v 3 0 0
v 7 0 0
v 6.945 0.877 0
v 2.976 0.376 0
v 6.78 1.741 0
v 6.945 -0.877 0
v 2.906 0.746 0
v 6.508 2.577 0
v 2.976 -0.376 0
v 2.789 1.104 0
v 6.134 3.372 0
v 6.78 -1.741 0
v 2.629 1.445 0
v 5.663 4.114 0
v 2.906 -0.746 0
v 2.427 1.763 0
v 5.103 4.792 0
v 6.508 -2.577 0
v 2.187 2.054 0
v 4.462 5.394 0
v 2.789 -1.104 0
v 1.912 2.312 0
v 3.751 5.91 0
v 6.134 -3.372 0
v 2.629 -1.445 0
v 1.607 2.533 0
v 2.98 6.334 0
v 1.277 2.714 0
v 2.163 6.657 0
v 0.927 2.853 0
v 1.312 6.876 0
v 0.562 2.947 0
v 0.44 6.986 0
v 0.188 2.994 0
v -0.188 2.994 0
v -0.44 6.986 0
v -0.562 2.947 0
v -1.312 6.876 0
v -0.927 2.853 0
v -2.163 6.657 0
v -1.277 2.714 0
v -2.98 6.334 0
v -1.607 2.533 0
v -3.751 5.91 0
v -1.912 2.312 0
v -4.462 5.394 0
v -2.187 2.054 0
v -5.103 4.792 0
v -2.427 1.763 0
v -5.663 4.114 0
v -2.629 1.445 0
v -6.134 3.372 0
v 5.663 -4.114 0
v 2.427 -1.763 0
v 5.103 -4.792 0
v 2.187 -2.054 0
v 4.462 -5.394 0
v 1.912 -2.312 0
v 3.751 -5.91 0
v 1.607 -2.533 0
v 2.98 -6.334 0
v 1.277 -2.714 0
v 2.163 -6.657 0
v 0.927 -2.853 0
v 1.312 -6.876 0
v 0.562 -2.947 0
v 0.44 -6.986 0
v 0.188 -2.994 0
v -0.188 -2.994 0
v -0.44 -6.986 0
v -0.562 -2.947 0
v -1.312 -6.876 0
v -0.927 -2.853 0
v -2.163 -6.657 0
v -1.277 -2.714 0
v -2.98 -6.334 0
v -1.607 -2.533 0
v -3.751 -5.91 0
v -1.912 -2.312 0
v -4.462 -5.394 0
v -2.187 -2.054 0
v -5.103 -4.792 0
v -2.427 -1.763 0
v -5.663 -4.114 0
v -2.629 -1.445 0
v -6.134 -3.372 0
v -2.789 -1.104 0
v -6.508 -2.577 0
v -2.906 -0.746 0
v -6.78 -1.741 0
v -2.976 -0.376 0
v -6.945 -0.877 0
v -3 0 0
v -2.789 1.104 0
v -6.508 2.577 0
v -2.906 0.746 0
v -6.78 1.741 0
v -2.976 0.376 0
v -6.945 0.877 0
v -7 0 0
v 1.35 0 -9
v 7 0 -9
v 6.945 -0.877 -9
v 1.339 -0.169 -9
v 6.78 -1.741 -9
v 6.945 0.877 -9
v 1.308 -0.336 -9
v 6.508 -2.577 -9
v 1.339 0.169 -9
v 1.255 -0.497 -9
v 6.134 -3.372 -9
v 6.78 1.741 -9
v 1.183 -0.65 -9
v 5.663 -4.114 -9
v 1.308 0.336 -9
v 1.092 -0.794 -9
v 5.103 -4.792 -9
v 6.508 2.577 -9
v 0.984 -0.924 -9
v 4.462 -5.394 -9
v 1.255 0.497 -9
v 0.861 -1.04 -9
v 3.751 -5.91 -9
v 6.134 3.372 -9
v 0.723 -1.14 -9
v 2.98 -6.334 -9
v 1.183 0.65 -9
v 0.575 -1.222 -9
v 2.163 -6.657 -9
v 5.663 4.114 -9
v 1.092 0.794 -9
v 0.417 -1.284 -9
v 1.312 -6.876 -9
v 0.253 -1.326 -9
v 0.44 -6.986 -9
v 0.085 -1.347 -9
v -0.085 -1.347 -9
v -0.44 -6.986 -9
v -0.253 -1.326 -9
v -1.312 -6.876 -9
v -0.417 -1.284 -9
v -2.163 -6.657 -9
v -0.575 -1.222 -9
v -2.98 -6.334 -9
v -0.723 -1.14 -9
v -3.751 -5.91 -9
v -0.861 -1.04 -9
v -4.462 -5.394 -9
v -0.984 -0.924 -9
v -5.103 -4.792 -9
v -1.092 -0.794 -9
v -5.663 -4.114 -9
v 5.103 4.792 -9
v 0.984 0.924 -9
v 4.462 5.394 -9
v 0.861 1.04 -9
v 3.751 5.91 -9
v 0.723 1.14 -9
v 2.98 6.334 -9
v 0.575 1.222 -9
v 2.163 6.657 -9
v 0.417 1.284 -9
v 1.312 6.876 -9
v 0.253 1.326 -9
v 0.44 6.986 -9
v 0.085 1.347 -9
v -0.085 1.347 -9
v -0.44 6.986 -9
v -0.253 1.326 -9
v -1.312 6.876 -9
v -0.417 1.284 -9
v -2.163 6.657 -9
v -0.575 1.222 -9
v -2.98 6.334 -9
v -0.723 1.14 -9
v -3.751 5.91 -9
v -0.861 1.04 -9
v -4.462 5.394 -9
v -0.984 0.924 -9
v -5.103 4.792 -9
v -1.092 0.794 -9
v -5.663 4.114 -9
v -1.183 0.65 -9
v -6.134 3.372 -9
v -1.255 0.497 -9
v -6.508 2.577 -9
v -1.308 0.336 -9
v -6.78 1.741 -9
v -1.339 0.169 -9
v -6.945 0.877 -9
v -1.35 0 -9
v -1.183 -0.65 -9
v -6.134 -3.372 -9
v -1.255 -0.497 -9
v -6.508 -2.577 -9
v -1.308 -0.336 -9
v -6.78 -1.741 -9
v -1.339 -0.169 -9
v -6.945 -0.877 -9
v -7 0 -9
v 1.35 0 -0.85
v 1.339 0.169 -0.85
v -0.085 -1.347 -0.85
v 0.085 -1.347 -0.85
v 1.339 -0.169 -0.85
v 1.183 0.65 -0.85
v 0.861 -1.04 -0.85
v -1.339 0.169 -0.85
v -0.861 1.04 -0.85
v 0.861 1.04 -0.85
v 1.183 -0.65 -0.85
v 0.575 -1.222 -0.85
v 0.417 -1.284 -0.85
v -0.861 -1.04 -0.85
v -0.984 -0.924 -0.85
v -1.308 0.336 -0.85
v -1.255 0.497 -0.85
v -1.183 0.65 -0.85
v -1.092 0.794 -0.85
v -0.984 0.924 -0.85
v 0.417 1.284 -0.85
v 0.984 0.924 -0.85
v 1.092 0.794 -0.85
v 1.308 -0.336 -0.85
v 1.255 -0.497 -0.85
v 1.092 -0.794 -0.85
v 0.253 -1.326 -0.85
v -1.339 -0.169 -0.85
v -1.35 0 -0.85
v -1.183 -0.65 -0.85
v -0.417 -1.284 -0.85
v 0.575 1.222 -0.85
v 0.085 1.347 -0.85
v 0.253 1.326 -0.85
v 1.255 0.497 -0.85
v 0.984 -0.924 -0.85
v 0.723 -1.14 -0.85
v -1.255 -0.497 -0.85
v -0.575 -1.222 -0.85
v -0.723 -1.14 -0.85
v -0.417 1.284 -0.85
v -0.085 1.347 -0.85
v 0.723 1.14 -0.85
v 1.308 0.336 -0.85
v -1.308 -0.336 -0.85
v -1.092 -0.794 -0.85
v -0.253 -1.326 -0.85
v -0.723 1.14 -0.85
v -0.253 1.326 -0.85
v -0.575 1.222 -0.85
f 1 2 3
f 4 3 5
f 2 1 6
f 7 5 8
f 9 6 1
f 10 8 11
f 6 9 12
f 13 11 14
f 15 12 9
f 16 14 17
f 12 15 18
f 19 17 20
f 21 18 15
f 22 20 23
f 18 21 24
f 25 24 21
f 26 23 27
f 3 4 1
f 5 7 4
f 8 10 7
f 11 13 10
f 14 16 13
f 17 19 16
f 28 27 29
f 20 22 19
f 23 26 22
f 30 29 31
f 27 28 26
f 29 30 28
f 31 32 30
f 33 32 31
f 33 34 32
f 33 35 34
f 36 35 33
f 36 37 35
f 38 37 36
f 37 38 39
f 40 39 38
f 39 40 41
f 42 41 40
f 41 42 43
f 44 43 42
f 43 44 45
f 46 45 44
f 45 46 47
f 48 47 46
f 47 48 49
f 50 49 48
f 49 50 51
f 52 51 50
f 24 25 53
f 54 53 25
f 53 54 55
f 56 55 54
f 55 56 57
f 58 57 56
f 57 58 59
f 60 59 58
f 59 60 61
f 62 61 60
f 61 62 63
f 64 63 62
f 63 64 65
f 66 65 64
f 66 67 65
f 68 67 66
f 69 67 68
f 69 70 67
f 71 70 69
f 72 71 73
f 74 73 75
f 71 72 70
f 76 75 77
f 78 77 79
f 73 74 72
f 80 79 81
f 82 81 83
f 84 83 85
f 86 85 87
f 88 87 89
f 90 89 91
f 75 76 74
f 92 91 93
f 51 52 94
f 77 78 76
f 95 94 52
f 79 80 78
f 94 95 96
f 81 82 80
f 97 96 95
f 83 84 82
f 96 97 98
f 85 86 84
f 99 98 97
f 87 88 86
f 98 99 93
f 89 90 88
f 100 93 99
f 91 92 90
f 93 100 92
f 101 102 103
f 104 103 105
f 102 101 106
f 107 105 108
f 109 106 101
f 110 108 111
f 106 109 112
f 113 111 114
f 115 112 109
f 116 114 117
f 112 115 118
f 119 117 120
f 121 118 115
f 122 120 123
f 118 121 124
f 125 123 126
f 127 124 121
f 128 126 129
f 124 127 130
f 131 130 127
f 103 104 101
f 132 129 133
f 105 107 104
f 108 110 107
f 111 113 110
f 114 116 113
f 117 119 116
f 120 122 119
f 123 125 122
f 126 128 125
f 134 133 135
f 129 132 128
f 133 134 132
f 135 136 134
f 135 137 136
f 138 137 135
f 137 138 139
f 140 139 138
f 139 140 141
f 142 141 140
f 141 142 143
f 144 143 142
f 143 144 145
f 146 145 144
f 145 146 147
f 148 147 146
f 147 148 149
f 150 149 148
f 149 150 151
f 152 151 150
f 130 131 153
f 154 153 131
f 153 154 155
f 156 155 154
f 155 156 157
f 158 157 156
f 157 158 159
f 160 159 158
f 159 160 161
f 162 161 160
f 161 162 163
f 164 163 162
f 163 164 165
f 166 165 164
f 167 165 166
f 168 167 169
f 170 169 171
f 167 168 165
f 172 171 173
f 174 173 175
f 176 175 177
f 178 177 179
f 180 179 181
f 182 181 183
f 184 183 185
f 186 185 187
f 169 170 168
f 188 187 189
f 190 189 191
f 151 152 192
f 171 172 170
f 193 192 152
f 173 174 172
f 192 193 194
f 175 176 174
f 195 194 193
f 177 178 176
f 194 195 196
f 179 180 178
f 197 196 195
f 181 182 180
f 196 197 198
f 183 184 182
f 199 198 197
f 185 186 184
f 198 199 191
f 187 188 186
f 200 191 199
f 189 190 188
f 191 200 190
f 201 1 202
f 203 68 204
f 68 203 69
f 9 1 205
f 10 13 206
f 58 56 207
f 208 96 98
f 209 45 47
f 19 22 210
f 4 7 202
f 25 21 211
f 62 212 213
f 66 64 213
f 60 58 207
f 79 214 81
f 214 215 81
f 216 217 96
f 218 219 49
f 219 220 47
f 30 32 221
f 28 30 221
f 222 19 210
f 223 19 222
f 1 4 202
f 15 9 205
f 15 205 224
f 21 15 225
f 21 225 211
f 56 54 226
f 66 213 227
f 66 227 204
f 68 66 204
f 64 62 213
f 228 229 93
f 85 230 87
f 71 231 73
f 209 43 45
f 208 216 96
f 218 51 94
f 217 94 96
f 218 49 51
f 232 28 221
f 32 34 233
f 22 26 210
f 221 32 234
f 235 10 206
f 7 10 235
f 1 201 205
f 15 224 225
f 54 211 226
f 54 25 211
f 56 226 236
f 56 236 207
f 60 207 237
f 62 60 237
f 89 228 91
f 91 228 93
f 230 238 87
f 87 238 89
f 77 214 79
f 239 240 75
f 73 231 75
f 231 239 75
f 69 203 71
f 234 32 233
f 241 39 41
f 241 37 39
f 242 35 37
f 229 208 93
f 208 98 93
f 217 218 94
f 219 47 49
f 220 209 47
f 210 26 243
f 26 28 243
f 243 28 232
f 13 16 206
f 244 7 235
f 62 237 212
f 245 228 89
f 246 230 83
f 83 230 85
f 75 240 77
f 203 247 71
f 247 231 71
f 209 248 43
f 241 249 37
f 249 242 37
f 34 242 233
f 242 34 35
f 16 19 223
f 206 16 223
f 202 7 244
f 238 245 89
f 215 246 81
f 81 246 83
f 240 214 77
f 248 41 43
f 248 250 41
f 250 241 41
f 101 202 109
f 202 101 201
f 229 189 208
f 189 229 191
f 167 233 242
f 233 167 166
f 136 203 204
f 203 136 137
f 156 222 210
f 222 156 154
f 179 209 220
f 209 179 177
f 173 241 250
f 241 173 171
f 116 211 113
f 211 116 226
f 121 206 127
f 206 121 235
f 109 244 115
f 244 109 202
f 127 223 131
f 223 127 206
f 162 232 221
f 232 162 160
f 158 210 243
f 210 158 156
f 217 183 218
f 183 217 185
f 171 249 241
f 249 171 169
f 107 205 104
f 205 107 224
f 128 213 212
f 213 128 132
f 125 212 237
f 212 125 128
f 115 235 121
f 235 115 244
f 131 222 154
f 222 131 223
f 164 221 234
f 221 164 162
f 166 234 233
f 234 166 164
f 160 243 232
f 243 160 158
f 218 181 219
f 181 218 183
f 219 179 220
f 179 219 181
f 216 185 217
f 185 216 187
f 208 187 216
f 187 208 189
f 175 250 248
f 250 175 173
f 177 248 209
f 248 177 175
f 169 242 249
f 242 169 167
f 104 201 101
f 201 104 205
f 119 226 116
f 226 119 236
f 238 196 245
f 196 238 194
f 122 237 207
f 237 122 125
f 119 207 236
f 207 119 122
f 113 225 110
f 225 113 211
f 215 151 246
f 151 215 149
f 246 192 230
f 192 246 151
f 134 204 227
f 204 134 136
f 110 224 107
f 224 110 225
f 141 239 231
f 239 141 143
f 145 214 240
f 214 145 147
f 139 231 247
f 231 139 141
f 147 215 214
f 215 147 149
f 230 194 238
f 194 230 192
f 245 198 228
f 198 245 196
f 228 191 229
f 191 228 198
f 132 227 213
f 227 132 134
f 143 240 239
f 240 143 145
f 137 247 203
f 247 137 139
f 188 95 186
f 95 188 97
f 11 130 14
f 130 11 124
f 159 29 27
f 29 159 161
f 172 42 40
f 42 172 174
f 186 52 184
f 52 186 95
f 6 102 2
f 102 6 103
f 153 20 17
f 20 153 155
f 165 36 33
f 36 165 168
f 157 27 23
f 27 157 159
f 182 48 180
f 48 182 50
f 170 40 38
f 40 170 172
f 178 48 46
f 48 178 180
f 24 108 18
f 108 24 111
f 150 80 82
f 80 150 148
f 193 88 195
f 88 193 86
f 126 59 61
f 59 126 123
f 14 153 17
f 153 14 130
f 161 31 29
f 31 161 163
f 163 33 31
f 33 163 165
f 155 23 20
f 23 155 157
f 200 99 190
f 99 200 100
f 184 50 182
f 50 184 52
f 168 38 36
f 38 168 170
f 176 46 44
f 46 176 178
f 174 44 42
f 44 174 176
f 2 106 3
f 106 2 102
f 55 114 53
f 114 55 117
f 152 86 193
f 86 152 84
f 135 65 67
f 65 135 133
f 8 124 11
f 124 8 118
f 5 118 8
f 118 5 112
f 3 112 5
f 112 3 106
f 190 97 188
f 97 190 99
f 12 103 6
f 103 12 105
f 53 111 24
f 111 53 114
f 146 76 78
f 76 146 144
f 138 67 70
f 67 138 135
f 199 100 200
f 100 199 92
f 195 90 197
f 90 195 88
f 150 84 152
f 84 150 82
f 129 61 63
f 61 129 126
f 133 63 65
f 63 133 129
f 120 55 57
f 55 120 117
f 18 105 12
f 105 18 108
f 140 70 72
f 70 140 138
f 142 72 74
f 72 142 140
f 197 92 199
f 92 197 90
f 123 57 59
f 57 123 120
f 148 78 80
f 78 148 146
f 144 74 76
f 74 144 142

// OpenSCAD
$fn = 50;


difference() {
	union() {
		translate(v = [0, 0, -9.0000000000]) {
			cylinder(h = 9, r = 7.0000000000);
		}
	}
	union() {
		translate(v = [0, 0, 0]) {
			rotate(a = [0, 0, 0]) {
				difference() {
					union() {
						#translate(v = [0, 0, -9.0000000000]) {
							cylinder(h = 9, r = 1.0000000000);
						}
						#translate(v = [0, 0, -0.8500000000]) {
							cylinder(h = 0.8500000000, r1 = 1.3500000000, r2 = 3.0000000000);
						}
						#translate(v = [0, 0, -9.0000000000]) {
							cylinder(h = 9, r = 1.3500000000);
						}
						#translate(v = [0, 0, -9.0000000000]) {
							cylinder(h = 9, r = 1.0000000000);
						}
					}
					union();
				}
			}
		}
	}
}
